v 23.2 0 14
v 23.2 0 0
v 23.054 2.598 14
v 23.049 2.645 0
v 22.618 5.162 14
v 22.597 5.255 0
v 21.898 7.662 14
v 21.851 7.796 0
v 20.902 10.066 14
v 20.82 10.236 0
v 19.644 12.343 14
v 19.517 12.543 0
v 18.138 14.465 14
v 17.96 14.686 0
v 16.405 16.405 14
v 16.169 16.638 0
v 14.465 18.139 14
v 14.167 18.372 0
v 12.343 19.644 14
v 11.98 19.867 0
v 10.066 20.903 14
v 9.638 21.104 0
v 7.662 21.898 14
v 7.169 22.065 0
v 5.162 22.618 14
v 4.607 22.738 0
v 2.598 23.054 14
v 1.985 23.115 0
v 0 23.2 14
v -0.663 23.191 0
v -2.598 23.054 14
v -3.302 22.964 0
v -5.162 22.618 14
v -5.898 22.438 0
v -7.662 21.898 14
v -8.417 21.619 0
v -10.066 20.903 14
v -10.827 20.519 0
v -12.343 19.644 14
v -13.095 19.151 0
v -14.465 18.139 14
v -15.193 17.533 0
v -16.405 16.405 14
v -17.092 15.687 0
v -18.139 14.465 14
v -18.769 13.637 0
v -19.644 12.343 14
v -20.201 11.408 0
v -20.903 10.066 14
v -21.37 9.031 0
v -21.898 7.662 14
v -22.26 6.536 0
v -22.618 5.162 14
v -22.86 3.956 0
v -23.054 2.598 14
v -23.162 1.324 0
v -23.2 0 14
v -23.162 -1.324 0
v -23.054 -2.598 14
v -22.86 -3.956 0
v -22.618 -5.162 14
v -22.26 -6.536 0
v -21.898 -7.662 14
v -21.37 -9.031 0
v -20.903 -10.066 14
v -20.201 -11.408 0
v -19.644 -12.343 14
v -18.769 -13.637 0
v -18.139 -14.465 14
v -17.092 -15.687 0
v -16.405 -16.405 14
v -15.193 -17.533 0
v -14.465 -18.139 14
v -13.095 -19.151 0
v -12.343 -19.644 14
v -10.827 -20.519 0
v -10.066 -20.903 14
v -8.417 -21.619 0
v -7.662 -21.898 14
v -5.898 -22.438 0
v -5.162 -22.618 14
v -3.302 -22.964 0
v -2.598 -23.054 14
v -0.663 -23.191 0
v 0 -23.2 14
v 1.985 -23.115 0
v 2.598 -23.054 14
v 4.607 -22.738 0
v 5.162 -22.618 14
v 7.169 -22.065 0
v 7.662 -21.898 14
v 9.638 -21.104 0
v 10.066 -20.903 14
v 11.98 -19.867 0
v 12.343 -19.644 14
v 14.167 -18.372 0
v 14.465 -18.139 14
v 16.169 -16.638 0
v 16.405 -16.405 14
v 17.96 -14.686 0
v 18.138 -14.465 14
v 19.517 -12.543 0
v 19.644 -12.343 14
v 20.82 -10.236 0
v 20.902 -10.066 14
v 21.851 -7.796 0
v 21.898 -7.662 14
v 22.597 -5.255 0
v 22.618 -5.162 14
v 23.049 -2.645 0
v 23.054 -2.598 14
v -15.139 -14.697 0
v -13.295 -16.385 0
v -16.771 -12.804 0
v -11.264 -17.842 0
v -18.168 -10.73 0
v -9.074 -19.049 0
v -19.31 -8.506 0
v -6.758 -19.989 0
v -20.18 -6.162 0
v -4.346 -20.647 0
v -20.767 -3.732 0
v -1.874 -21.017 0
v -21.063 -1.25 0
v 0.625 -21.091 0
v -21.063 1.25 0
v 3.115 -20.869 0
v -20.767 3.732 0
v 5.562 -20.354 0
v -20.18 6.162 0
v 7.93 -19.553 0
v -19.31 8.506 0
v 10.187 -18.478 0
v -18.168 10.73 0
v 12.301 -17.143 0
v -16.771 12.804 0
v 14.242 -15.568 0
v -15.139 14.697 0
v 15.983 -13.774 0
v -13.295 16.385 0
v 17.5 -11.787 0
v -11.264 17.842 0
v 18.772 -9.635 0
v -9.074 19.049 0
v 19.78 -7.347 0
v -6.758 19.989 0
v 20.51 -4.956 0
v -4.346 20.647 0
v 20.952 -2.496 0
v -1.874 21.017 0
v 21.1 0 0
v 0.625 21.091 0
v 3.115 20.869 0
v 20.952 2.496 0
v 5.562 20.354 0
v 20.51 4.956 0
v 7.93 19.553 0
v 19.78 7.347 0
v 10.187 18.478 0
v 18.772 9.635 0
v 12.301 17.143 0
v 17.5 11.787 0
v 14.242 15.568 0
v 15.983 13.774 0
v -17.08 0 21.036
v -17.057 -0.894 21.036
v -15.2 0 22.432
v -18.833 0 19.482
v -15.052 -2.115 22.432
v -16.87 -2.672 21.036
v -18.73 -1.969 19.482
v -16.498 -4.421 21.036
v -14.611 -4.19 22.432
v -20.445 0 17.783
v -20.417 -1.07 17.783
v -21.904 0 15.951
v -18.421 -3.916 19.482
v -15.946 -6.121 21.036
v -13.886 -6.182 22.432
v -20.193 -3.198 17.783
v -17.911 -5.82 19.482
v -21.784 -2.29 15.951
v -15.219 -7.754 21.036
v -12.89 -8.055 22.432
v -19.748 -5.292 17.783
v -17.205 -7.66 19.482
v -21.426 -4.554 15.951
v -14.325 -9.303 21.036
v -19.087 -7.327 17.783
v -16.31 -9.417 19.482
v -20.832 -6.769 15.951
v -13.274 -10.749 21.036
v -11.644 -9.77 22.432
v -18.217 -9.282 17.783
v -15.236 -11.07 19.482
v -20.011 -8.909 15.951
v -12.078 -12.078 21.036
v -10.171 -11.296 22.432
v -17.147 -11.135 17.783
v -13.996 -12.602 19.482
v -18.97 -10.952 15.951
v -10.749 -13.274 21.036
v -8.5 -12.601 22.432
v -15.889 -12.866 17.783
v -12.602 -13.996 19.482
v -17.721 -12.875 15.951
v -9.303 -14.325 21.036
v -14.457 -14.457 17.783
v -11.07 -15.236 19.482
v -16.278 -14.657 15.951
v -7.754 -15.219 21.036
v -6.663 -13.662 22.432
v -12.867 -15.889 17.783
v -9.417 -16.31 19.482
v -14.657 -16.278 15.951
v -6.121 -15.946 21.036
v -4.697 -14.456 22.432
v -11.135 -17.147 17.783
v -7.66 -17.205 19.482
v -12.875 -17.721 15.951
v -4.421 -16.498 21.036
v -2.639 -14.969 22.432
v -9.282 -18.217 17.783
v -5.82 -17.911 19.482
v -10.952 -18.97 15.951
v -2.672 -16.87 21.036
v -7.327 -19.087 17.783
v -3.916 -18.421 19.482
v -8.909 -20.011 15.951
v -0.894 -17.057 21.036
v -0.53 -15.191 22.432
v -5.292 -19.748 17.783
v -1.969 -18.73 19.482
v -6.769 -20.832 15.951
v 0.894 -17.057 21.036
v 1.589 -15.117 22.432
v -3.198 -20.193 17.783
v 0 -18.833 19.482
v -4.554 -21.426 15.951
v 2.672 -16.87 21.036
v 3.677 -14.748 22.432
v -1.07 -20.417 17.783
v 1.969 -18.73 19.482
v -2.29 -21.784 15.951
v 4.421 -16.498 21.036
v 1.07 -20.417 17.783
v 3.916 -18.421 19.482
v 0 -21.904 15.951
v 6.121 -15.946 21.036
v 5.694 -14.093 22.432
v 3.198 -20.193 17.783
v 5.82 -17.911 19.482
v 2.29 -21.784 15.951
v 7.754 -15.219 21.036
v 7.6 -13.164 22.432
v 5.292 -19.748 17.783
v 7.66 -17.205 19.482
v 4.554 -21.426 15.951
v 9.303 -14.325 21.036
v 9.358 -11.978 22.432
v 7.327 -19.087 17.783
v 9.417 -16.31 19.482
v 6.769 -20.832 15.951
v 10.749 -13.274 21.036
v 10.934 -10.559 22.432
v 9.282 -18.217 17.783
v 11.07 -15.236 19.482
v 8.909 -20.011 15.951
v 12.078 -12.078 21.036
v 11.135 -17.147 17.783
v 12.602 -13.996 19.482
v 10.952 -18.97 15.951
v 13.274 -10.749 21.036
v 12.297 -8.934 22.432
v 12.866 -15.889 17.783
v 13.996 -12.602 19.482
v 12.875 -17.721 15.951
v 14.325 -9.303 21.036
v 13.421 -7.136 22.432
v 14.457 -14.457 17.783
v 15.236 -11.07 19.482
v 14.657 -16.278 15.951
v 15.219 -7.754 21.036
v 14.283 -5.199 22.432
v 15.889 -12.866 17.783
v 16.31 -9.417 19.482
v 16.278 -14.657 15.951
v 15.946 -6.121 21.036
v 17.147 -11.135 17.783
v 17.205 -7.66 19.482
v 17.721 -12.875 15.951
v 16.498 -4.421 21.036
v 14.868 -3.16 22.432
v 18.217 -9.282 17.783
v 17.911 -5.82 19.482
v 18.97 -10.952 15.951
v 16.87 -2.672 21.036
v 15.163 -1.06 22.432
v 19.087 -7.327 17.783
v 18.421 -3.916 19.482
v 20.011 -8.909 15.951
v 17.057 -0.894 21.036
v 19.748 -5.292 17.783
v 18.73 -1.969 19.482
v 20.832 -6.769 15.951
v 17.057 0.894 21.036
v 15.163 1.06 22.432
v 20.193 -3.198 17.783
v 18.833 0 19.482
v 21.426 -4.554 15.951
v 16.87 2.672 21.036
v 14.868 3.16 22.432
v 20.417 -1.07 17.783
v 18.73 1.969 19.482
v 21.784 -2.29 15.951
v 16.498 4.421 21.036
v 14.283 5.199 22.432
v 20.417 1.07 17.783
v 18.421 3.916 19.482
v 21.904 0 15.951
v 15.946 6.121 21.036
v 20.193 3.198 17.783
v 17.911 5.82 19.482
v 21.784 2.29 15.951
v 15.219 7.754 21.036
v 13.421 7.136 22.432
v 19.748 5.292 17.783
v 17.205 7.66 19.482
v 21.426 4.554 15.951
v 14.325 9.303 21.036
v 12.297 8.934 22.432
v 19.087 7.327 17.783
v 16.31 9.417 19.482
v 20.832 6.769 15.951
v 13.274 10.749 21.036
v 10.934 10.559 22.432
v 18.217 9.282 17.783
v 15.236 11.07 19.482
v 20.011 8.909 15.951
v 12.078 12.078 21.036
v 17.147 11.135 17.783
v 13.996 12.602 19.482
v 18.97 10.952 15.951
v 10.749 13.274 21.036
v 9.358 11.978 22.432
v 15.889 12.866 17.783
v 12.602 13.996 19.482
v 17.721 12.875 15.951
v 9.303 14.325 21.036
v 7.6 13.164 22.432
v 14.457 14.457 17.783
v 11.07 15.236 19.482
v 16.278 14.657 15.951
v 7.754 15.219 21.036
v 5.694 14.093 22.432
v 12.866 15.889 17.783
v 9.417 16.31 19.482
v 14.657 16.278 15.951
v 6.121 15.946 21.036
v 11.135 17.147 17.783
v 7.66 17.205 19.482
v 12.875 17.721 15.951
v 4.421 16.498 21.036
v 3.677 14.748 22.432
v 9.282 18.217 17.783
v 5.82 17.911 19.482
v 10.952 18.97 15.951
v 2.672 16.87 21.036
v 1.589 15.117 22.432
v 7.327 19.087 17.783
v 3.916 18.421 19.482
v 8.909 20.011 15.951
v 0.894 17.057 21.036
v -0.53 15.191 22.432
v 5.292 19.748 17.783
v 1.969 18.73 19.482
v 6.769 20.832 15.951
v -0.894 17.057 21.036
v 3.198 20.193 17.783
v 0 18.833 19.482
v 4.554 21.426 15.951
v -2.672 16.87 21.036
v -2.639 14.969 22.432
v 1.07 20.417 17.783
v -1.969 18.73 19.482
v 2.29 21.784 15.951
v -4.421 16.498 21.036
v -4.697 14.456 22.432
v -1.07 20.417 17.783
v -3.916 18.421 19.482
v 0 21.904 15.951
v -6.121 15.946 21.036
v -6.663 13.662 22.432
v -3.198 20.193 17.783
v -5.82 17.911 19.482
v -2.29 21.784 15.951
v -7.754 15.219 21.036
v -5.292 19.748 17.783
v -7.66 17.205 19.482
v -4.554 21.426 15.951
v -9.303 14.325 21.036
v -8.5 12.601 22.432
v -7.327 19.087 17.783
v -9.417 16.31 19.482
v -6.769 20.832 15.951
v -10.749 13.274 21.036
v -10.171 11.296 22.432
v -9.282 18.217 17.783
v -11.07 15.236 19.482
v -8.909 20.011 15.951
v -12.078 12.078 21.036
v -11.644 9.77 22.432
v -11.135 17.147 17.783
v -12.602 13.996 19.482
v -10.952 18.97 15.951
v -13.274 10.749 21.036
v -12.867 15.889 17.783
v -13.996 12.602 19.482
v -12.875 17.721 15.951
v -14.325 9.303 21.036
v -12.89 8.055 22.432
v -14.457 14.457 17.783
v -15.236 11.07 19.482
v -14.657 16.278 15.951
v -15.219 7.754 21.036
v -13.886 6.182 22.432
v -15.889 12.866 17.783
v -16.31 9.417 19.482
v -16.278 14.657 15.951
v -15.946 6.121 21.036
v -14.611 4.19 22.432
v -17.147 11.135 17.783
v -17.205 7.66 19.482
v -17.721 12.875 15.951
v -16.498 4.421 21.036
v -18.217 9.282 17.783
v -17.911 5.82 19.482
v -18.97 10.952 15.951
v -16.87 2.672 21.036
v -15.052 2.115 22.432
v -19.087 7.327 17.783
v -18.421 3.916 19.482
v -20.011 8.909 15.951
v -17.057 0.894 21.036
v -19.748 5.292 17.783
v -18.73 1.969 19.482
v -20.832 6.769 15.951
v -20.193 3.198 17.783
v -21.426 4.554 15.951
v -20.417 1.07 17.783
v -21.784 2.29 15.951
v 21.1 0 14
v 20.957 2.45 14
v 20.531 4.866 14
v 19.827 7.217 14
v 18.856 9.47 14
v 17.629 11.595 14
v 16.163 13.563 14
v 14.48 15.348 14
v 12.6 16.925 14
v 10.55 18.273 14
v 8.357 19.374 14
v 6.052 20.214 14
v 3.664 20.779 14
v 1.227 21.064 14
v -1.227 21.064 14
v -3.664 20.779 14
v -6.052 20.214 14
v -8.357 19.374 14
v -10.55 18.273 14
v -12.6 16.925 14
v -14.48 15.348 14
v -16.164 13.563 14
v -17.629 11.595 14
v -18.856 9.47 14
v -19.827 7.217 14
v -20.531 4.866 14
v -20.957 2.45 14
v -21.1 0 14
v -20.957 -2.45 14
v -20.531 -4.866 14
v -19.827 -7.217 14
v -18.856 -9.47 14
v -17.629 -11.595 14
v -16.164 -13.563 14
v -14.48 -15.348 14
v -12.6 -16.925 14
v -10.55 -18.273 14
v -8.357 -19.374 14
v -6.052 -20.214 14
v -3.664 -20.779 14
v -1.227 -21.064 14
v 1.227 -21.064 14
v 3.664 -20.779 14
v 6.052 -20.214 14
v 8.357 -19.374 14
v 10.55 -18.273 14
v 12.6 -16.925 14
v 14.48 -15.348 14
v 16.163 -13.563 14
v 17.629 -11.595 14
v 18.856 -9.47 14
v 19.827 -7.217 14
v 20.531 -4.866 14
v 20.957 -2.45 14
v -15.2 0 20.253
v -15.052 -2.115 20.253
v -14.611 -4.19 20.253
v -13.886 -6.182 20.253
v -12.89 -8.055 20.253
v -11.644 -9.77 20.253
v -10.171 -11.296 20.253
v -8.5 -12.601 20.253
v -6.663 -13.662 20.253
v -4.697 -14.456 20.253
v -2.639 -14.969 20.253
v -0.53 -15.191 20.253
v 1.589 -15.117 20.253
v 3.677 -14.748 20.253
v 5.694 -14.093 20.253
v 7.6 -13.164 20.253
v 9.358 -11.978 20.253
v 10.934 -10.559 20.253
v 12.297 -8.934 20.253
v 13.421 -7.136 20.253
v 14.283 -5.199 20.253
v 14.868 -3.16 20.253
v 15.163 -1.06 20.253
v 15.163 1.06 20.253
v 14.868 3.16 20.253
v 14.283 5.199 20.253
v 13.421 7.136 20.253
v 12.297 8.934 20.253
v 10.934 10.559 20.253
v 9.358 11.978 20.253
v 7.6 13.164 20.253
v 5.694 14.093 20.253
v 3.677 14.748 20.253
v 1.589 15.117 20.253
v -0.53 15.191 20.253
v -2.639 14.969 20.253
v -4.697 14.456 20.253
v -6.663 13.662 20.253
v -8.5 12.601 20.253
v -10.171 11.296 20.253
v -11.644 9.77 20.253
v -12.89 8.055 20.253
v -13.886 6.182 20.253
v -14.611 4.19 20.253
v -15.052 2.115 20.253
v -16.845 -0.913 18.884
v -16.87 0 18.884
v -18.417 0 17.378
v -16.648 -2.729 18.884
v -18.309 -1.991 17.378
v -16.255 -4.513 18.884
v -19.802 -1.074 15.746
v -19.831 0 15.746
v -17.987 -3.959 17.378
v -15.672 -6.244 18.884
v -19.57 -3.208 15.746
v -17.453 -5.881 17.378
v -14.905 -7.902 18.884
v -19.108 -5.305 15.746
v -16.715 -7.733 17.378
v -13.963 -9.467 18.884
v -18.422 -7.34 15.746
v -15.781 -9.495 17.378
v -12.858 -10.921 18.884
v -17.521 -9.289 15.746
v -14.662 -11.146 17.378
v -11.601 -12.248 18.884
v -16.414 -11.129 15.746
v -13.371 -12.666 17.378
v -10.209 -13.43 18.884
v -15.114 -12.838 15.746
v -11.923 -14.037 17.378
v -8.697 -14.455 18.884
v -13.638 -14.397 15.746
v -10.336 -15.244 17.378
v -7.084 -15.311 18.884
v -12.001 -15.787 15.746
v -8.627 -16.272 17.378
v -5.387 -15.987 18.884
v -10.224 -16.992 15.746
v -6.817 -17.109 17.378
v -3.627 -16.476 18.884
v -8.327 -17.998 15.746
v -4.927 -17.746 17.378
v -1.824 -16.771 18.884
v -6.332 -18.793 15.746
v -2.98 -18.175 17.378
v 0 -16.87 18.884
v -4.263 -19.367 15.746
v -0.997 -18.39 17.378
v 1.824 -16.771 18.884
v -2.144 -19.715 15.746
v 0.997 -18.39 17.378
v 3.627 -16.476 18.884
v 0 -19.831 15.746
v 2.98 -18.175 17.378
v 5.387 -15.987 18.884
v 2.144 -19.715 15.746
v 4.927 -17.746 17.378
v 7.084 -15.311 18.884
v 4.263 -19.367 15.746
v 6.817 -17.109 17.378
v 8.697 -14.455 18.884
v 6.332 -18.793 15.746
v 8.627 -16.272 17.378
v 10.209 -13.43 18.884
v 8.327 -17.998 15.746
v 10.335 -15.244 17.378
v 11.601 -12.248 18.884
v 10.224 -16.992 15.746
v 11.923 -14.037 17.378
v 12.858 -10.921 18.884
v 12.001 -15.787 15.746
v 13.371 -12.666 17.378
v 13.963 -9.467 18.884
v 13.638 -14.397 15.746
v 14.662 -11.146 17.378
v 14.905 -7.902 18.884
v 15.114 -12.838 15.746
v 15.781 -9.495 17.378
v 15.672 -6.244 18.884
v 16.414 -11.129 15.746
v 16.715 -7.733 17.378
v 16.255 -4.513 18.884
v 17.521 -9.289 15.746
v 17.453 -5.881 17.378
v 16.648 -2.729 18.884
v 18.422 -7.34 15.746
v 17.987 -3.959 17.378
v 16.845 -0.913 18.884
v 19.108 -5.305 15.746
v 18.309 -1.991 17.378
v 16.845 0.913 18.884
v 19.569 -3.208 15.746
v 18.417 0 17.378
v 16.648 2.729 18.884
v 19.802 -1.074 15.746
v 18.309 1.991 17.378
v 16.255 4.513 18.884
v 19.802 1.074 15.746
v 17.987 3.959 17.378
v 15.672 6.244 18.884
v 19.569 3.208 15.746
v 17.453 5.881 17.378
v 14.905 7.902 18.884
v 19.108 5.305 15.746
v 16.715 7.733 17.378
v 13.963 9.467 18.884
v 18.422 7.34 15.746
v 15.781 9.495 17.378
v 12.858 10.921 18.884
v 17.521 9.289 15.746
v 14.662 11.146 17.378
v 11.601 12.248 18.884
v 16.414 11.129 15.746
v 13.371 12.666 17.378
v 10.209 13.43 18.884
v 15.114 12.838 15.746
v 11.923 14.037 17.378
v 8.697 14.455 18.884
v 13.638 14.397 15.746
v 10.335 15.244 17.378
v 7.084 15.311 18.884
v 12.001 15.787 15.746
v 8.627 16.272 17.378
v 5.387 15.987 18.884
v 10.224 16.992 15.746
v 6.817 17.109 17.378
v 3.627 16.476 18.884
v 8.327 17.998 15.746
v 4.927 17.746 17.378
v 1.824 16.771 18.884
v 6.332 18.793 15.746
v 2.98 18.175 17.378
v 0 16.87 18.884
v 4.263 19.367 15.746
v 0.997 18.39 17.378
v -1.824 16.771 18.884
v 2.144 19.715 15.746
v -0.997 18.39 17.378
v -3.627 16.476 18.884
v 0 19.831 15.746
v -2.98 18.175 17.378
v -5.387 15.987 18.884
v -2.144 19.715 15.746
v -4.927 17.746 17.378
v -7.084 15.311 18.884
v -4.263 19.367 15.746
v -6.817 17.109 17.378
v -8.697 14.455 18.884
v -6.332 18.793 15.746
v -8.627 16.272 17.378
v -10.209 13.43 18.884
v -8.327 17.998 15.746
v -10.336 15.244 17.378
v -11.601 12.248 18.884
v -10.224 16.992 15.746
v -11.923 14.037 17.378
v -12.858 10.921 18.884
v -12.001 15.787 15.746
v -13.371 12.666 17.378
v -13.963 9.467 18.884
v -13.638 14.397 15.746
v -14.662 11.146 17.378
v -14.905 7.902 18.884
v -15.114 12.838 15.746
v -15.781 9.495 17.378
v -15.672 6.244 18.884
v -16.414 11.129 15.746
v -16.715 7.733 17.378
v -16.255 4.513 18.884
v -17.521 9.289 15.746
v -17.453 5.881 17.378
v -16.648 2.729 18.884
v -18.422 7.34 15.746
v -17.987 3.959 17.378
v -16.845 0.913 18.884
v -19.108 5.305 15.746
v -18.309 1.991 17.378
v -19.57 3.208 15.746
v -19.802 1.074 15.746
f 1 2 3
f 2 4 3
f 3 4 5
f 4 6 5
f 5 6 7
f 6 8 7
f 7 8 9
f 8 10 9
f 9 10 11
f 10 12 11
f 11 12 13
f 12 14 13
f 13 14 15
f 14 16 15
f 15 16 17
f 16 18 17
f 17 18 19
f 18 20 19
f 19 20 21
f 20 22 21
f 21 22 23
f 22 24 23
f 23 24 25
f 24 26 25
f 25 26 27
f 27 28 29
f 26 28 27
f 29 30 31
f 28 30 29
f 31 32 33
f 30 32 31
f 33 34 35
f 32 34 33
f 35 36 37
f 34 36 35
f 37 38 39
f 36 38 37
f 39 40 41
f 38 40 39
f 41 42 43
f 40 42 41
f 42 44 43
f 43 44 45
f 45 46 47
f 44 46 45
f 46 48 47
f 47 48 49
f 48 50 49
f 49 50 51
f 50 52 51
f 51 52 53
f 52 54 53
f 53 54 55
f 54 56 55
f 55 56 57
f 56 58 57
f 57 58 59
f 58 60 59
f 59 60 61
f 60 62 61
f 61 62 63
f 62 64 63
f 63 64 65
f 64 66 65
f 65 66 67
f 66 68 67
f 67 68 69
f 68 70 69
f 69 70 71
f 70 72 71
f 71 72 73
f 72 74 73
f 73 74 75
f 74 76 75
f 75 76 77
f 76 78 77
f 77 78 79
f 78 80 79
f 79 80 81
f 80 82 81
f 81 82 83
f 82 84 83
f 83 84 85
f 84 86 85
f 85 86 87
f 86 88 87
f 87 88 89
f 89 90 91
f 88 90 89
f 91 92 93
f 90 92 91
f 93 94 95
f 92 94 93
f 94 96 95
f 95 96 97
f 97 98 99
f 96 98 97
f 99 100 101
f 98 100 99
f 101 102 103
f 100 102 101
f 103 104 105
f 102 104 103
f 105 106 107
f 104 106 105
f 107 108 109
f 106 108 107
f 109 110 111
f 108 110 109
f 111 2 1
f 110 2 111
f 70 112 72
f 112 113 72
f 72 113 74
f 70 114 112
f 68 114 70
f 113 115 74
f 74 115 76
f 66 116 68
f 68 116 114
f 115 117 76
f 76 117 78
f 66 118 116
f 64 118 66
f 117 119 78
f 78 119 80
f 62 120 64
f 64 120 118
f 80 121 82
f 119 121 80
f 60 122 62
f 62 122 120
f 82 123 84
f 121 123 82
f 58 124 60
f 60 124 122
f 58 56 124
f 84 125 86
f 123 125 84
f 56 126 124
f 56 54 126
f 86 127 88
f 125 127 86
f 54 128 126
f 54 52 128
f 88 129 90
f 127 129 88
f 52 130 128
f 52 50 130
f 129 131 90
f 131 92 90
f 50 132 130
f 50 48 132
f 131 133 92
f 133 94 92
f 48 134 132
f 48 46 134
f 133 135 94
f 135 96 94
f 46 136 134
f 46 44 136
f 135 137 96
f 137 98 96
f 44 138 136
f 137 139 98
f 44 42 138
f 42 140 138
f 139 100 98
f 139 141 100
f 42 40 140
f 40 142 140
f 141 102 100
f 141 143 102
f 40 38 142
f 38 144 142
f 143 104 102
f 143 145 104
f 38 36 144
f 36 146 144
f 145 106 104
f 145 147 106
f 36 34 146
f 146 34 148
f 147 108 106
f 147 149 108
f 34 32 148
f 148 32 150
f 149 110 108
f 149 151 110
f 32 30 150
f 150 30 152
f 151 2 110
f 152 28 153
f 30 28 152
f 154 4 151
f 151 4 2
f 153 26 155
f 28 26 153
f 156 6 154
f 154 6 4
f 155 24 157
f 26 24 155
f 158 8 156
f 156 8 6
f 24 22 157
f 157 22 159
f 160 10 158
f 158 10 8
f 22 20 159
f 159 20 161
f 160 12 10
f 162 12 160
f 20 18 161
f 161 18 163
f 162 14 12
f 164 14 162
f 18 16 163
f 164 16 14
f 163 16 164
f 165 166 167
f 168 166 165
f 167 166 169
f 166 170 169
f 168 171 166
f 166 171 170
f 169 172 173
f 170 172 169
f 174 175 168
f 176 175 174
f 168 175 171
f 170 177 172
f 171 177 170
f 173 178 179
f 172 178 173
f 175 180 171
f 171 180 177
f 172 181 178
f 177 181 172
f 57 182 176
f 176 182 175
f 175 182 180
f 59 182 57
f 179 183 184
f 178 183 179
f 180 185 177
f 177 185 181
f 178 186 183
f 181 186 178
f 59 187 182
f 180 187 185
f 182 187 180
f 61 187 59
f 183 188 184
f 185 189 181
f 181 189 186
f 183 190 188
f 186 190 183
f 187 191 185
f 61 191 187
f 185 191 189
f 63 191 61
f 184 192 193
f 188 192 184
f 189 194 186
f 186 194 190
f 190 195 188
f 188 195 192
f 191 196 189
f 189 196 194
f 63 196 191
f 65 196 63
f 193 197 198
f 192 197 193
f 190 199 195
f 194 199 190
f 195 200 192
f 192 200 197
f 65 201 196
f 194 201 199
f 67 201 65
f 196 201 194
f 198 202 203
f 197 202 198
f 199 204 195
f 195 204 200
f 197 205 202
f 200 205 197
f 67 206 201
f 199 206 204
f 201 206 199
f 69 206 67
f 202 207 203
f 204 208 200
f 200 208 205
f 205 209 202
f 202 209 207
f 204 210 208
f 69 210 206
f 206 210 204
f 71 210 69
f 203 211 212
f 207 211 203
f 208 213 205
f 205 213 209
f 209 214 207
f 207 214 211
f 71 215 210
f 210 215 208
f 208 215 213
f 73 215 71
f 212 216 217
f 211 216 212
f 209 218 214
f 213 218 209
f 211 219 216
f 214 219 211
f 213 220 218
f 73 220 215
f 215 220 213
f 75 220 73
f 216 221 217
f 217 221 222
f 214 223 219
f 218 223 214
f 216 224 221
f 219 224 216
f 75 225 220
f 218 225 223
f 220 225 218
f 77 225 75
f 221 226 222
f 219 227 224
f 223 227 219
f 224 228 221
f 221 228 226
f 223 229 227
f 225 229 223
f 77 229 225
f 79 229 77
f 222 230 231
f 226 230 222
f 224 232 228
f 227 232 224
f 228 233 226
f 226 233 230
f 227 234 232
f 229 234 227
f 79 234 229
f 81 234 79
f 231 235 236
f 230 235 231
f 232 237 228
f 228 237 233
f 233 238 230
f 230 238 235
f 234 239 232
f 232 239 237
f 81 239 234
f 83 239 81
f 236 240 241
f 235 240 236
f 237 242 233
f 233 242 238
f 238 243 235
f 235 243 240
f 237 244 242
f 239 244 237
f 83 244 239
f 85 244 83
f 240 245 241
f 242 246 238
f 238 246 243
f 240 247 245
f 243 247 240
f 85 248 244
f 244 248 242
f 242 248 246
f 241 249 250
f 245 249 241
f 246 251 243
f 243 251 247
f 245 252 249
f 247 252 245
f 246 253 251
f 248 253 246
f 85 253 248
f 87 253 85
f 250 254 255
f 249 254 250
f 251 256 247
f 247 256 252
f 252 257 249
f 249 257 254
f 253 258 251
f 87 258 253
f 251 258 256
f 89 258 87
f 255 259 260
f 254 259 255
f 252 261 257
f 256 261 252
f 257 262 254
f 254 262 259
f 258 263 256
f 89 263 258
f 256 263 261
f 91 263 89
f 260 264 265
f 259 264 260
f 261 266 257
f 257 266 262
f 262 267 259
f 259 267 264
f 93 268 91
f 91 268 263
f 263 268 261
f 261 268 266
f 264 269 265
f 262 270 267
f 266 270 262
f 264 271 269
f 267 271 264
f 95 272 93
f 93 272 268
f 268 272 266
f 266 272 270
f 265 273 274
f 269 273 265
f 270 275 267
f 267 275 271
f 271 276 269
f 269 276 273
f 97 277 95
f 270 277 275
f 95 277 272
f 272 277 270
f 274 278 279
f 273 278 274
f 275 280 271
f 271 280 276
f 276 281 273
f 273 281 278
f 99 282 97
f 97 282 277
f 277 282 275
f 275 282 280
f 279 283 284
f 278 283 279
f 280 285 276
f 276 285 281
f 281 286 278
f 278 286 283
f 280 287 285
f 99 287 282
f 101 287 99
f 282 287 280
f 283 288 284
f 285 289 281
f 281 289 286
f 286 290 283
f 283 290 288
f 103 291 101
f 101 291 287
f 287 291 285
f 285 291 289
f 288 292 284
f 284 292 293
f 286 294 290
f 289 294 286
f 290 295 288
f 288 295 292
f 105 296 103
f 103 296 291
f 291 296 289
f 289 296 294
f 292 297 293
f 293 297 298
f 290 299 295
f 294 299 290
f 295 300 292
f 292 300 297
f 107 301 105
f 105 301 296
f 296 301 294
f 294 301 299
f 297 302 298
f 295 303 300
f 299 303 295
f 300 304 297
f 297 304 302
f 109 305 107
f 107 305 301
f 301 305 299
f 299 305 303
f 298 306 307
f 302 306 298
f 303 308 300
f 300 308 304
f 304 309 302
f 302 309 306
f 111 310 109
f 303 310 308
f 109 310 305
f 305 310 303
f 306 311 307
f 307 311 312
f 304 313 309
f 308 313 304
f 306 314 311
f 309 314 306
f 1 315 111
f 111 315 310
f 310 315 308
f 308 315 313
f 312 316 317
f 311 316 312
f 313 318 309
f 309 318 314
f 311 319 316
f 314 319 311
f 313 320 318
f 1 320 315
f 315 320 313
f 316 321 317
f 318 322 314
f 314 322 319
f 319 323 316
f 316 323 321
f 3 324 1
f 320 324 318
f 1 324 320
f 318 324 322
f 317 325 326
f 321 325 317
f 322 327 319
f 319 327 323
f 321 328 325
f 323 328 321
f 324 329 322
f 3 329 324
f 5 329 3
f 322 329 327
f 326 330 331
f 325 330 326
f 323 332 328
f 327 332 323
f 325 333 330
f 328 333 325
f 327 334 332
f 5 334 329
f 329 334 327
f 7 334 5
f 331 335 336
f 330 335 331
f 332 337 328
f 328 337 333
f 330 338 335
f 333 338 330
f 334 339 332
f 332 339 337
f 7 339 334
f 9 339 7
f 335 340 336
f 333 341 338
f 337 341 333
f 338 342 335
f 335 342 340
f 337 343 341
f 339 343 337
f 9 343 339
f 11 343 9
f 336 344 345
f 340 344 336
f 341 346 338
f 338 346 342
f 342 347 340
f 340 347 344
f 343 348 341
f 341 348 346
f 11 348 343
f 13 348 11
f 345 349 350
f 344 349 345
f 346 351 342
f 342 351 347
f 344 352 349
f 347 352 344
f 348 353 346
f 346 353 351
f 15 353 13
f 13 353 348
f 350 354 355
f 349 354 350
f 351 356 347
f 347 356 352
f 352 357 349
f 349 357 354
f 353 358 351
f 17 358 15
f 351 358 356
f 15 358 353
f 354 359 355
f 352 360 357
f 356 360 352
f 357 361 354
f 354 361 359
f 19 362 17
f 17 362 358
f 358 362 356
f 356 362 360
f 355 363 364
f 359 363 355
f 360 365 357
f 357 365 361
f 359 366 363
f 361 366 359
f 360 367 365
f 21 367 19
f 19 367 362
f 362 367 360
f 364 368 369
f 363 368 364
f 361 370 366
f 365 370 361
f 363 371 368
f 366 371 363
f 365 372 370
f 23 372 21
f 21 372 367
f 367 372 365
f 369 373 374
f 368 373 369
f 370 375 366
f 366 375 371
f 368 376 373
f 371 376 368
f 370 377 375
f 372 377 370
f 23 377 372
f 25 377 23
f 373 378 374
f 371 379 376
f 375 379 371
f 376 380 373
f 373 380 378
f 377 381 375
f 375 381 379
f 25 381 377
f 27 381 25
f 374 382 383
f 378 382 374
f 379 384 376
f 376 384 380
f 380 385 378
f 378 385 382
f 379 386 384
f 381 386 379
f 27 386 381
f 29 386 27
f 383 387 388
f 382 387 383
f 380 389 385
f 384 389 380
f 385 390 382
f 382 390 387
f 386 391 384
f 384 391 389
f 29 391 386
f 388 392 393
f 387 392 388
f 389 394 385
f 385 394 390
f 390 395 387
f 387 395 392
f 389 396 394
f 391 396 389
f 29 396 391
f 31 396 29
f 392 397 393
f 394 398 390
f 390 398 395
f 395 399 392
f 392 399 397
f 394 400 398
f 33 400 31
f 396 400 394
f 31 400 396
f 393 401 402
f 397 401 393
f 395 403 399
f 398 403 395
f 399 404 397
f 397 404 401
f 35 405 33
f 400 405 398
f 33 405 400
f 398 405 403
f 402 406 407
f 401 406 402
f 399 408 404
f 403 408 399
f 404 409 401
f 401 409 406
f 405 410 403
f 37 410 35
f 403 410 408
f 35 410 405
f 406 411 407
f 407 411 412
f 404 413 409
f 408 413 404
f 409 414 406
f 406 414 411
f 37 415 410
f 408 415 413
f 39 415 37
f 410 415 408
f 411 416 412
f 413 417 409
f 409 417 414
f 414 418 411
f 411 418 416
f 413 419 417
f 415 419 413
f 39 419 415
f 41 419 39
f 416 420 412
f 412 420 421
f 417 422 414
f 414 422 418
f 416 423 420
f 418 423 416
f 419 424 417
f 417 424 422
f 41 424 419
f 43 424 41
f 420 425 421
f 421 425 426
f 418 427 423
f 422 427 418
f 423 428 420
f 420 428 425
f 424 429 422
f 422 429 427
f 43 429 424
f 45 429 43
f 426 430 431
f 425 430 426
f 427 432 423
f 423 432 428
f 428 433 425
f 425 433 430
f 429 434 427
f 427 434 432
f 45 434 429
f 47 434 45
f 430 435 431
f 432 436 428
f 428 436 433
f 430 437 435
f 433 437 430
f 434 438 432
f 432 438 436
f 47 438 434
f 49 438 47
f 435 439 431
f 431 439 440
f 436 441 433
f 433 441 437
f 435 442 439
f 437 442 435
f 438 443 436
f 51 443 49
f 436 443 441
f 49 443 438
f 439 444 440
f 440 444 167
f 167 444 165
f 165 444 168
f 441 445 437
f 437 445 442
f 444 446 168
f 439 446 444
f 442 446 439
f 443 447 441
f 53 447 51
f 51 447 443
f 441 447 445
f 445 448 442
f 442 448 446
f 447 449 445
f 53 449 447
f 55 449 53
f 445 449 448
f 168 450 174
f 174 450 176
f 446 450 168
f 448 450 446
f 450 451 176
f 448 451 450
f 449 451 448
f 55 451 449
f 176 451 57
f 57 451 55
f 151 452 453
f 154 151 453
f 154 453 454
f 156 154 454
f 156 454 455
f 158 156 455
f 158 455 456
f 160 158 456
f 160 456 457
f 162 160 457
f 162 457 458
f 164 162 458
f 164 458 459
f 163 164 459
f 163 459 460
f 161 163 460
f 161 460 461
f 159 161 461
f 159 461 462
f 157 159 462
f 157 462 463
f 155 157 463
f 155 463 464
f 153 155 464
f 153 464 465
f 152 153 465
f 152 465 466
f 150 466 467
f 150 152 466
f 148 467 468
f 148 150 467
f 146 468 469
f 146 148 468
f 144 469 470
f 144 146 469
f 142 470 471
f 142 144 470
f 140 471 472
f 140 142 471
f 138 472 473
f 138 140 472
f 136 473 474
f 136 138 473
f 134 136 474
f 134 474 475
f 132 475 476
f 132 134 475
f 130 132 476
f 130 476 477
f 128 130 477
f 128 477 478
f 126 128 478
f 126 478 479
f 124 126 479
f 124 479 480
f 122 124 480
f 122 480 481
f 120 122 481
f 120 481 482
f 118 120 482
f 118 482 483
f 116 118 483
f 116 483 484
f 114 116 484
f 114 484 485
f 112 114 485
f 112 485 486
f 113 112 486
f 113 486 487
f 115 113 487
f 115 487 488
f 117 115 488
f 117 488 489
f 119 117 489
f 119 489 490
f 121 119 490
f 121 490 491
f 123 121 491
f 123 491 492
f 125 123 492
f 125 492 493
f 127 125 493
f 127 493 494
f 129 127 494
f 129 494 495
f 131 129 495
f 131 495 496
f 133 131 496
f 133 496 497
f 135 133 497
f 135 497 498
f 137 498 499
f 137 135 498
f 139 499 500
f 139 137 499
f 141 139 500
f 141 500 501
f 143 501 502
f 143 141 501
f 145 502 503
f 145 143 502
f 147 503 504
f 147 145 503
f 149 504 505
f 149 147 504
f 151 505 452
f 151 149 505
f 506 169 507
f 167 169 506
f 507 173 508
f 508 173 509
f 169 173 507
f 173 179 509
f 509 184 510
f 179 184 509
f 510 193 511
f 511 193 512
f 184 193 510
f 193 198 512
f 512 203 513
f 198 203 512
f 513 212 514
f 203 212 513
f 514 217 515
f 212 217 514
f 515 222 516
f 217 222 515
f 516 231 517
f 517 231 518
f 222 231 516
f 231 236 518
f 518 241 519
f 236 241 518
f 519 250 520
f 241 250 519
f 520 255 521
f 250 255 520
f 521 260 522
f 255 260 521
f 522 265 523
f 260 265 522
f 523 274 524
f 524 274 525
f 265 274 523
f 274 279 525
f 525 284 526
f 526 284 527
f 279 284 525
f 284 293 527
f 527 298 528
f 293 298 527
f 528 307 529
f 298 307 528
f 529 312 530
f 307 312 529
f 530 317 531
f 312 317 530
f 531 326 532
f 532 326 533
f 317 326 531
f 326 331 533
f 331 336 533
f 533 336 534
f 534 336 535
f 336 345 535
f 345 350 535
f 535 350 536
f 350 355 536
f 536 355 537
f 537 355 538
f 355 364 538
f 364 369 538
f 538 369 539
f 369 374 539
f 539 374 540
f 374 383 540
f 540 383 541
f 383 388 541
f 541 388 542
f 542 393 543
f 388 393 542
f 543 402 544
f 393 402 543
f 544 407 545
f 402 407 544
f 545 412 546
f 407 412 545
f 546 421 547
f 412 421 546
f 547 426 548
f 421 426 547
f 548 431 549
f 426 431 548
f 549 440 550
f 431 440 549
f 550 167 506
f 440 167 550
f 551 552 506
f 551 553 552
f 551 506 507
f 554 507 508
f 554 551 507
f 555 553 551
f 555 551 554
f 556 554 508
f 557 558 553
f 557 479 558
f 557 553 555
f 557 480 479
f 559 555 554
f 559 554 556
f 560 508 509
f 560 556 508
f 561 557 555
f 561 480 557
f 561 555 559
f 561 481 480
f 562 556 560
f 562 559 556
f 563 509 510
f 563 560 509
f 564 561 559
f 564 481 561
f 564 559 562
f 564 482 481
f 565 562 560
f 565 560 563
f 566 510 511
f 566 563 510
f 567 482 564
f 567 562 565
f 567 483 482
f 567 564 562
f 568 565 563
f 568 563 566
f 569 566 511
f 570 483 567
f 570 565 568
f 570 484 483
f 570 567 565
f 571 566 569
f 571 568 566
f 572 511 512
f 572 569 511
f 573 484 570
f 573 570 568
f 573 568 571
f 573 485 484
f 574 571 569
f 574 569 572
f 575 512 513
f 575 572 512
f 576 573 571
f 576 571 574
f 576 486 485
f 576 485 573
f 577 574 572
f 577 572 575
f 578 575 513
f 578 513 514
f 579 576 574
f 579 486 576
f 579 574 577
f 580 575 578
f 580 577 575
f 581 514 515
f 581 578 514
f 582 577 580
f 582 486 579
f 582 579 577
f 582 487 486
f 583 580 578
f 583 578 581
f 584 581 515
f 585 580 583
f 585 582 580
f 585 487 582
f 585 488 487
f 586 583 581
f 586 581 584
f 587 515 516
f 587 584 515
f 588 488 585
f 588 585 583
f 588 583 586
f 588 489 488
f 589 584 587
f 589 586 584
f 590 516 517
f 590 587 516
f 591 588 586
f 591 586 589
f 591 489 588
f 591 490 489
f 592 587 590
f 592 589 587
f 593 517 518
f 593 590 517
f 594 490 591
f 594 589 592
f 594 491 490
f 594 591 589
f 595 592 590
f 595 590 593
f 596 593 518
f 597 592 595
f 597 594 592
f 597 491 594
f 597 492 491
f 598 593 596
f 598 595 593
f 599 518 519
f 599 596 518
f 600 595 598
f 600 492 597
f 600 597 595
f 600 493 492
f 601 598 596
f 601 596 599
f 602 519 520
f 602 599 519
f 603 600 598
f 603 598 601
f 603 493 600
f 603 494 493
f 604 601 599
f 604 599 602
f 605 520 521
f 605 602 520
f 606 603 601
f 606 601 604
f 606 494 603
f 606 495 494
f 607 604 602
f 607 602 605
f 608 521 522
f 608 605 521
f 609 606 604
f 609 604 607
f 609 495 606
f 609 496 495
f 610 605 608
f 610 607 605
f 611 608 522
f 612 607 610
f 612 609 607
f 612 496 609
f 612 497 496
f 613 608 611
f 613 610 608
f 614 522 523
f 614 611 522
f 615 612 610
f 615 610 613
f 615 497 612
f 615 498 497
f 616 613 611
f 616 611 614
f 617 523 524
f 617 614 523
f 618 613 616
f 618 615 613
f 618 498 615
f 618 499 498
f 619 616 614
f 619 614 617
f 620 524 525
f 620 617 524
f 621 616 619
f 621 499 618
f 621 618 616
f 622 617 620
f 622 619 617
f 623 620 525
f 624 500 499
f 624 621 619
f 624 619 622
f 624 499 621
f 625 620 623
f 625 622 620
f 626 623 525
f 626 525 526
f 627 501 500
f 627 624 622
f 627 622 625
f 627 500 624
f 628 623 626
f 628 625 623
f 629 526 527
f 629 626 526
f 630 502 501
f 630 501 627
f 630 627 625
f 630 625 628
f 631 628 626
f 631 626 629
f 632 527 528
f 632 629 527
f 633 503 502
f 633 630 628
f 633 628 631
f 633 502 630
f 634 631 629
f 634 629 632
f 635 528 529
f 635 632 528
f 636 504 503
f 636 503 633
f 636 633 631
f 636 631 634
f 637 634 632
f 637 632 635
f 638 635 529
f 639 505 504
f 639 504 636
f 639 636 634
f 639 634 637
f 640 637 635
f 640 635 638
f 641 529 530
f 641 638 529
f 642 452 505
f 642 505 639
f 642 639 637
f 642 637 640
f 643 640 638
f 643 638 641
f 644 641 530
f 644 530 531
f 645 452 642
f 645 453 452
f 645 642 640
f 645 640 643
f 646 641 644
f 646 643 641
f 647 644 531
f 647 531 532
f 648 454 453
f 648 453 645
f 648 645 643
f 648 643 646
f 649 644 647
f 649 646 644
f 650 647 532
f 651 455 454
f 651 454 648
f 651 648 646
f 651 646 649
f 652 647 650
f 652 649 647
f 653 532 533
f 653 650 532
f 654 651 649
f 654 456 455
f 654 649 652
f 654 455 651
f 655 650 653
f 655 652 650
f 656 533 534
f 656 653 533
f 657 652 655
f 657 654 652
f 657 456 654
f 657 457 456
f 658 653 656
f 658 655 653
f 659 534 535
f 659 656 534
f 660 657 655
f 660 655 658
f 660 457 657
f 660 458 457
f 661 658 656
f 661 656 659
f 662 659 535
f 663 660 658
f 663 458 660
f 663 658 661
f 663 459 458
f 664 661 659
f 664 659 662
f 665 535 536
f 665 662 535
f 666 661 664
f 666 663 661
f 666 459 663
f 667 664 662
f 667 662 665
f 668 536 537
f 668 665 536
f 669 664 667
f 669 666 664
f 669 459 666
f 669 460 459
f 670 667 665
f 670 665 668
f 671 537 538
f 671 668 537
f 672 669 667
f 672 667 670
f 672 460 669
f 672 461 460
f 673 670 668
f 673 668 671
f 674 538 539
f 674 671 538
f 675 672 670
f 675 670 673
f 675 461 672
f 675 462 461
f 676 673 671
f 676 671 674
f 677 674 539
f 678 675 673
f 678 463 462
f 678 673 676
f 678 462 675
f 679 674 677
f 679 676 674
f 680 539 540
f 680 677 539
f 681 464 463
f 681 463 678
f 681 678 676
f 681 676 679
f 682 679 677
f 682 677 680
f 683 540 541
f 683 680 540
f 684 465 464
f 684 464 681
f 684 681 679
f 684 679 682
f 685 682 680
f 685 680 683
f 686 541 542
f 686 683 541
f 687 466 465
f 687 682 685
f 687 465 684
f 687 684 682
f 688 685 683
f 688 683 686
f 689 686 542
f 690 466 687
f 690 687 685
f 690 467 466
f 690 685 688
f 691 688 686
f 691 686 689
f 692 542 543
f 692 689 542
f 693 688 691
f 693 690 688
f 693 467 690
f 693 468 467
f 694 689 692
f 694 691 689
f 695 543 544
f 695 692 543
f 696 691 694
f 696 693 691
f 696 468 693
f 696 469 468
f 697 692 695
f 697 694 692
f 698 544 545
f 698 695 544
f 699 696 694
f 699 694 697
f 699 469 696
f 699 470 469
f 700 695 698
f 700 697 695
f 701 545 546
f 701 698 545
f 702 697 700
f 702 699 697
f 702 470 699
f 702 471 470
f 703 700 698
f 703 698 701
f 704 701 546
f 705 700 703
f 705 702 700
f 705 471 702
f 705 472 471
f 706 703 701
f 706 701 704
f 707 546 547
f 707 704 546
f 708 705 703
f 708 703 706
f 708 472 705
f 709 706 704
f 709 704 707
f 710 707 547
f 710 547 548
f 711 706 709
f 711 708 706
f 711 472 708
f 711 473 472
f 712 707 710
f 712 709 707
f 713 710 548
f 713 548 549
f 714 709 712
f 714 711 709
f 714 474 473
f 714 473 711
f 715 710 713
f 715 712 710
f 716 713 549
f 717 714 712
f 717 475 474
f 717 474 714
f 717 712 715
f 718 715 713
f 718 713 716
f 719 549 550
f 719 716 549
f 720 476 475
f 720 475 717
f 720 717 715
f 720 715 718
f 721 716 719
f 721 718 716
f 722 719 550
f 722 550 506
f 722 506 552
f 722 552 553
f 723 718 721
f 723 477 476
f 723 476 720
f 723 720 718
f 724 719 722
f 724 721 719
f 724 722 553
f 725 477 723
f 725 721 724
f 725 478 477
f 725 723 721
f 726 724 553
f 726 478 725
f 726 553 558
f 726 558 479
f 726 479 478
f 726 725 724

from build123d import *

# Parameters (mm, degrees)
SKETCH_R   = 23.2
SKETCH_R_2 = 21.1
PAD_DEPTH  = 14


with BuildPart() as body001:
    # Sketch001 → Revolution (revolve)
    with BuildSketch(Plane.XZ):
        with BuildLine():
            ThreePointArc((-15.2, 20.252654), (-18.417286, 17.378538), (-21.1, 14))
            Line((-21.1, 14), (-23.2, 14))
            ThreePointArc((-15.2, 22.43212), (-19.657445, 18.650063), (-23.2, 14))
            Line((-15.2, 20.252654), (-15.2, 22.43212))
        make_face()
    revolve(axis=Axis((0, 0, 0), (0, 0, 1)))


with BuildPart() as body:
    # Sketch → Pad (new body)
    with BuildSketch(Plane.XY):
        Circle(SKETCH_R)
        Circle(SKETCH_R_2, mode=Mode.SUBTRACT)
    extrude(amount=PAD_DEPTH)

    # Boolean: union Body001
    add(body001.part)


solid = body.part
